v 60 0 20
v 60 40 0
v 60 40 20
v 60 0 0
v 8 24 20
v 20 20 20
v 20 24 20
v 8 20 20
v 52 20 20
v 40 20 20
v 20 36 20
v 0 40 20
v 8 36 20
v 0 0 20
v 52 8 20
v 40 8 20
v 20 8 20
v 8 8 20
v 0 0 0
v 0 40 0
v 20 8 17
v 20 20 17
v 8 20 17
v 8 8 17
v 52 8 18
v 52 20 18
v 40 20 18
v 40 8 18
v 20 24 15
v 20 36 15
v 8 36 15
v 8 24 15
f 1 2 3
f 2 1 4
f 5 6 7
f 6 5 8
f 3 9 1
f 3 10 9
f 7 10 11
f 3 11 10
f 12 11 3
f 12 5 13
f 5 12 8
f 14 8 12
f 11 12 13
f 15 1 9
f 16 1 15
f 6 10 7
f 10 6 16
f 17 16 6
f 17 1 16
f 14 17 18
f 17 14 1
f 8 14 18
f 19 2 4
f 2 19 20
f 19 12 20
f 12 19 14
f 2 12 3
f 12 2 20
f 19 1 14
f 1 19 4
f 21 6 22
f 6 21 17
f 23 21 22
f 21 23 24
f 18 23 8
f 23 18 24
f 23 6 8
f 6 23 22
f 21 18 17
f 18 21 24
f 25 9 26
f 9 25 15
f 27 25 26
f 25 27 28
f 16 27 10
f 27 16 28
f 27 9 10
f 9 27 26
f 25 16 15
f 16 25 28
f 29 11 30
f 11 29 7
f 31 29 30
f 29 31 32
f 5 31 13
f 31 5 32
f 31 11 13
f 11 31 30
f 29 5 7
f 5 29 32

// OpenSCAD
$fn=96;
selected_pocket_depth=3;
difference(){cube([60,40,20]); translate([8,8,20-selected_pocket_depth]) cube([12,12,selected_pocket_depth+1]); translate([40,8,18]) cube([12,12,3]); translate([8,24,15]) cube([12,12,6]);}
